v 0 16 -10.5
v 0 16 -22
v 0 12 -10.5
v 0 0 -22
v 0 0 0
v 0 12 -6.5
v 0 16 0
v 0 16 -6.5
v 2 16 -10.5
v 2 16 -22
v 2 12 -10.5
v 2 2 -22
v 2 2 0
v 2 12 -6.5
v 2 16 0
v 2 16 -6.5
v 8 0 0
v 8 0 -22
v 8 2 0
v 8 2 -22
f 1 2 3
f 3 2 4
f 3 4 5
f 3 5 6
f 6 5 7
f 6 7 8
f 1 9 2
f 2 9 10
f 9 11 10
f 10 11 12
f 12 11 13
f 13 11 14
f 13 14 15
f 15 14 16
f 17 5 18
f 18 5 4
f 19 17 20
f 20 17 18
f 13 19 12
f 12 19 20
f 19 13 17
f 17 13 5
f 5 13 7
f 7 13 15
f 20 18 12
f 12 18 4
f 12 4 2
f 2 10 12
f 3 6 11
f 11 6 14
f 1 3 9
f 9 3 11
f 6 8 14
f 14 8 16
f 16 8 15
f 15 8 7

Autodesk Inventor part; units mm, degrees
ref_plane "YZ Plane" through (0, 0, 0) normal (1, 0, 0) x (0, 1, 0)
ref_plane "XZ Plane" through (0, 0, 0) normal (0, 1, 0) x (-1, 0, 0)
ref_plane "XY Plane" through (0, 0, 0) normal (0, 0, 1) x (1, 0, 0)
sketch "Sketch1" plane through (0, 0, 0) normal (0, 0, 1) x (1, 0, 0)
  line L0 (0, 0) -> (2, 0)
  line L1 (2, 0) -> (2, 16)
  line L2 (2, 16) -> (0, 16)
  line L3 (0, 16) -> (0, 0)
  line L4 (2, 2) -> (8, 2)
  line L5 (8, 2) -> (8, 0)
  line L6 (8, 0) -> (2, 0)
  line L7 (2, 0) -> (2, 2)
  dimension "d0" = 2
  dimension "d1" = 16
  dimension "d2" = 6
extrude "Extrusion1" add sketch "Sketch1" against normal blind 22
sketch "Sketch2" plane through (2, 2, 0) normal (1, 0, 0) x (0, 0, -1)
  line L0 (10.5, 14) -> (6.5, 14)
  line L1 (6.5, 14) -> (6.5, 10)
  line L2 (6.5, 10) -> (10.5, 10)
  line L3 (10.5, 10) -> (10.5, 14)
  point P0 (0, -2)
  dimension "d5" = 4
  dimension "d6" = 4
extrude "Extrusion2" cut sketch "Sketch2" against normal blind 10
properties part number "housing_mate_v04"
